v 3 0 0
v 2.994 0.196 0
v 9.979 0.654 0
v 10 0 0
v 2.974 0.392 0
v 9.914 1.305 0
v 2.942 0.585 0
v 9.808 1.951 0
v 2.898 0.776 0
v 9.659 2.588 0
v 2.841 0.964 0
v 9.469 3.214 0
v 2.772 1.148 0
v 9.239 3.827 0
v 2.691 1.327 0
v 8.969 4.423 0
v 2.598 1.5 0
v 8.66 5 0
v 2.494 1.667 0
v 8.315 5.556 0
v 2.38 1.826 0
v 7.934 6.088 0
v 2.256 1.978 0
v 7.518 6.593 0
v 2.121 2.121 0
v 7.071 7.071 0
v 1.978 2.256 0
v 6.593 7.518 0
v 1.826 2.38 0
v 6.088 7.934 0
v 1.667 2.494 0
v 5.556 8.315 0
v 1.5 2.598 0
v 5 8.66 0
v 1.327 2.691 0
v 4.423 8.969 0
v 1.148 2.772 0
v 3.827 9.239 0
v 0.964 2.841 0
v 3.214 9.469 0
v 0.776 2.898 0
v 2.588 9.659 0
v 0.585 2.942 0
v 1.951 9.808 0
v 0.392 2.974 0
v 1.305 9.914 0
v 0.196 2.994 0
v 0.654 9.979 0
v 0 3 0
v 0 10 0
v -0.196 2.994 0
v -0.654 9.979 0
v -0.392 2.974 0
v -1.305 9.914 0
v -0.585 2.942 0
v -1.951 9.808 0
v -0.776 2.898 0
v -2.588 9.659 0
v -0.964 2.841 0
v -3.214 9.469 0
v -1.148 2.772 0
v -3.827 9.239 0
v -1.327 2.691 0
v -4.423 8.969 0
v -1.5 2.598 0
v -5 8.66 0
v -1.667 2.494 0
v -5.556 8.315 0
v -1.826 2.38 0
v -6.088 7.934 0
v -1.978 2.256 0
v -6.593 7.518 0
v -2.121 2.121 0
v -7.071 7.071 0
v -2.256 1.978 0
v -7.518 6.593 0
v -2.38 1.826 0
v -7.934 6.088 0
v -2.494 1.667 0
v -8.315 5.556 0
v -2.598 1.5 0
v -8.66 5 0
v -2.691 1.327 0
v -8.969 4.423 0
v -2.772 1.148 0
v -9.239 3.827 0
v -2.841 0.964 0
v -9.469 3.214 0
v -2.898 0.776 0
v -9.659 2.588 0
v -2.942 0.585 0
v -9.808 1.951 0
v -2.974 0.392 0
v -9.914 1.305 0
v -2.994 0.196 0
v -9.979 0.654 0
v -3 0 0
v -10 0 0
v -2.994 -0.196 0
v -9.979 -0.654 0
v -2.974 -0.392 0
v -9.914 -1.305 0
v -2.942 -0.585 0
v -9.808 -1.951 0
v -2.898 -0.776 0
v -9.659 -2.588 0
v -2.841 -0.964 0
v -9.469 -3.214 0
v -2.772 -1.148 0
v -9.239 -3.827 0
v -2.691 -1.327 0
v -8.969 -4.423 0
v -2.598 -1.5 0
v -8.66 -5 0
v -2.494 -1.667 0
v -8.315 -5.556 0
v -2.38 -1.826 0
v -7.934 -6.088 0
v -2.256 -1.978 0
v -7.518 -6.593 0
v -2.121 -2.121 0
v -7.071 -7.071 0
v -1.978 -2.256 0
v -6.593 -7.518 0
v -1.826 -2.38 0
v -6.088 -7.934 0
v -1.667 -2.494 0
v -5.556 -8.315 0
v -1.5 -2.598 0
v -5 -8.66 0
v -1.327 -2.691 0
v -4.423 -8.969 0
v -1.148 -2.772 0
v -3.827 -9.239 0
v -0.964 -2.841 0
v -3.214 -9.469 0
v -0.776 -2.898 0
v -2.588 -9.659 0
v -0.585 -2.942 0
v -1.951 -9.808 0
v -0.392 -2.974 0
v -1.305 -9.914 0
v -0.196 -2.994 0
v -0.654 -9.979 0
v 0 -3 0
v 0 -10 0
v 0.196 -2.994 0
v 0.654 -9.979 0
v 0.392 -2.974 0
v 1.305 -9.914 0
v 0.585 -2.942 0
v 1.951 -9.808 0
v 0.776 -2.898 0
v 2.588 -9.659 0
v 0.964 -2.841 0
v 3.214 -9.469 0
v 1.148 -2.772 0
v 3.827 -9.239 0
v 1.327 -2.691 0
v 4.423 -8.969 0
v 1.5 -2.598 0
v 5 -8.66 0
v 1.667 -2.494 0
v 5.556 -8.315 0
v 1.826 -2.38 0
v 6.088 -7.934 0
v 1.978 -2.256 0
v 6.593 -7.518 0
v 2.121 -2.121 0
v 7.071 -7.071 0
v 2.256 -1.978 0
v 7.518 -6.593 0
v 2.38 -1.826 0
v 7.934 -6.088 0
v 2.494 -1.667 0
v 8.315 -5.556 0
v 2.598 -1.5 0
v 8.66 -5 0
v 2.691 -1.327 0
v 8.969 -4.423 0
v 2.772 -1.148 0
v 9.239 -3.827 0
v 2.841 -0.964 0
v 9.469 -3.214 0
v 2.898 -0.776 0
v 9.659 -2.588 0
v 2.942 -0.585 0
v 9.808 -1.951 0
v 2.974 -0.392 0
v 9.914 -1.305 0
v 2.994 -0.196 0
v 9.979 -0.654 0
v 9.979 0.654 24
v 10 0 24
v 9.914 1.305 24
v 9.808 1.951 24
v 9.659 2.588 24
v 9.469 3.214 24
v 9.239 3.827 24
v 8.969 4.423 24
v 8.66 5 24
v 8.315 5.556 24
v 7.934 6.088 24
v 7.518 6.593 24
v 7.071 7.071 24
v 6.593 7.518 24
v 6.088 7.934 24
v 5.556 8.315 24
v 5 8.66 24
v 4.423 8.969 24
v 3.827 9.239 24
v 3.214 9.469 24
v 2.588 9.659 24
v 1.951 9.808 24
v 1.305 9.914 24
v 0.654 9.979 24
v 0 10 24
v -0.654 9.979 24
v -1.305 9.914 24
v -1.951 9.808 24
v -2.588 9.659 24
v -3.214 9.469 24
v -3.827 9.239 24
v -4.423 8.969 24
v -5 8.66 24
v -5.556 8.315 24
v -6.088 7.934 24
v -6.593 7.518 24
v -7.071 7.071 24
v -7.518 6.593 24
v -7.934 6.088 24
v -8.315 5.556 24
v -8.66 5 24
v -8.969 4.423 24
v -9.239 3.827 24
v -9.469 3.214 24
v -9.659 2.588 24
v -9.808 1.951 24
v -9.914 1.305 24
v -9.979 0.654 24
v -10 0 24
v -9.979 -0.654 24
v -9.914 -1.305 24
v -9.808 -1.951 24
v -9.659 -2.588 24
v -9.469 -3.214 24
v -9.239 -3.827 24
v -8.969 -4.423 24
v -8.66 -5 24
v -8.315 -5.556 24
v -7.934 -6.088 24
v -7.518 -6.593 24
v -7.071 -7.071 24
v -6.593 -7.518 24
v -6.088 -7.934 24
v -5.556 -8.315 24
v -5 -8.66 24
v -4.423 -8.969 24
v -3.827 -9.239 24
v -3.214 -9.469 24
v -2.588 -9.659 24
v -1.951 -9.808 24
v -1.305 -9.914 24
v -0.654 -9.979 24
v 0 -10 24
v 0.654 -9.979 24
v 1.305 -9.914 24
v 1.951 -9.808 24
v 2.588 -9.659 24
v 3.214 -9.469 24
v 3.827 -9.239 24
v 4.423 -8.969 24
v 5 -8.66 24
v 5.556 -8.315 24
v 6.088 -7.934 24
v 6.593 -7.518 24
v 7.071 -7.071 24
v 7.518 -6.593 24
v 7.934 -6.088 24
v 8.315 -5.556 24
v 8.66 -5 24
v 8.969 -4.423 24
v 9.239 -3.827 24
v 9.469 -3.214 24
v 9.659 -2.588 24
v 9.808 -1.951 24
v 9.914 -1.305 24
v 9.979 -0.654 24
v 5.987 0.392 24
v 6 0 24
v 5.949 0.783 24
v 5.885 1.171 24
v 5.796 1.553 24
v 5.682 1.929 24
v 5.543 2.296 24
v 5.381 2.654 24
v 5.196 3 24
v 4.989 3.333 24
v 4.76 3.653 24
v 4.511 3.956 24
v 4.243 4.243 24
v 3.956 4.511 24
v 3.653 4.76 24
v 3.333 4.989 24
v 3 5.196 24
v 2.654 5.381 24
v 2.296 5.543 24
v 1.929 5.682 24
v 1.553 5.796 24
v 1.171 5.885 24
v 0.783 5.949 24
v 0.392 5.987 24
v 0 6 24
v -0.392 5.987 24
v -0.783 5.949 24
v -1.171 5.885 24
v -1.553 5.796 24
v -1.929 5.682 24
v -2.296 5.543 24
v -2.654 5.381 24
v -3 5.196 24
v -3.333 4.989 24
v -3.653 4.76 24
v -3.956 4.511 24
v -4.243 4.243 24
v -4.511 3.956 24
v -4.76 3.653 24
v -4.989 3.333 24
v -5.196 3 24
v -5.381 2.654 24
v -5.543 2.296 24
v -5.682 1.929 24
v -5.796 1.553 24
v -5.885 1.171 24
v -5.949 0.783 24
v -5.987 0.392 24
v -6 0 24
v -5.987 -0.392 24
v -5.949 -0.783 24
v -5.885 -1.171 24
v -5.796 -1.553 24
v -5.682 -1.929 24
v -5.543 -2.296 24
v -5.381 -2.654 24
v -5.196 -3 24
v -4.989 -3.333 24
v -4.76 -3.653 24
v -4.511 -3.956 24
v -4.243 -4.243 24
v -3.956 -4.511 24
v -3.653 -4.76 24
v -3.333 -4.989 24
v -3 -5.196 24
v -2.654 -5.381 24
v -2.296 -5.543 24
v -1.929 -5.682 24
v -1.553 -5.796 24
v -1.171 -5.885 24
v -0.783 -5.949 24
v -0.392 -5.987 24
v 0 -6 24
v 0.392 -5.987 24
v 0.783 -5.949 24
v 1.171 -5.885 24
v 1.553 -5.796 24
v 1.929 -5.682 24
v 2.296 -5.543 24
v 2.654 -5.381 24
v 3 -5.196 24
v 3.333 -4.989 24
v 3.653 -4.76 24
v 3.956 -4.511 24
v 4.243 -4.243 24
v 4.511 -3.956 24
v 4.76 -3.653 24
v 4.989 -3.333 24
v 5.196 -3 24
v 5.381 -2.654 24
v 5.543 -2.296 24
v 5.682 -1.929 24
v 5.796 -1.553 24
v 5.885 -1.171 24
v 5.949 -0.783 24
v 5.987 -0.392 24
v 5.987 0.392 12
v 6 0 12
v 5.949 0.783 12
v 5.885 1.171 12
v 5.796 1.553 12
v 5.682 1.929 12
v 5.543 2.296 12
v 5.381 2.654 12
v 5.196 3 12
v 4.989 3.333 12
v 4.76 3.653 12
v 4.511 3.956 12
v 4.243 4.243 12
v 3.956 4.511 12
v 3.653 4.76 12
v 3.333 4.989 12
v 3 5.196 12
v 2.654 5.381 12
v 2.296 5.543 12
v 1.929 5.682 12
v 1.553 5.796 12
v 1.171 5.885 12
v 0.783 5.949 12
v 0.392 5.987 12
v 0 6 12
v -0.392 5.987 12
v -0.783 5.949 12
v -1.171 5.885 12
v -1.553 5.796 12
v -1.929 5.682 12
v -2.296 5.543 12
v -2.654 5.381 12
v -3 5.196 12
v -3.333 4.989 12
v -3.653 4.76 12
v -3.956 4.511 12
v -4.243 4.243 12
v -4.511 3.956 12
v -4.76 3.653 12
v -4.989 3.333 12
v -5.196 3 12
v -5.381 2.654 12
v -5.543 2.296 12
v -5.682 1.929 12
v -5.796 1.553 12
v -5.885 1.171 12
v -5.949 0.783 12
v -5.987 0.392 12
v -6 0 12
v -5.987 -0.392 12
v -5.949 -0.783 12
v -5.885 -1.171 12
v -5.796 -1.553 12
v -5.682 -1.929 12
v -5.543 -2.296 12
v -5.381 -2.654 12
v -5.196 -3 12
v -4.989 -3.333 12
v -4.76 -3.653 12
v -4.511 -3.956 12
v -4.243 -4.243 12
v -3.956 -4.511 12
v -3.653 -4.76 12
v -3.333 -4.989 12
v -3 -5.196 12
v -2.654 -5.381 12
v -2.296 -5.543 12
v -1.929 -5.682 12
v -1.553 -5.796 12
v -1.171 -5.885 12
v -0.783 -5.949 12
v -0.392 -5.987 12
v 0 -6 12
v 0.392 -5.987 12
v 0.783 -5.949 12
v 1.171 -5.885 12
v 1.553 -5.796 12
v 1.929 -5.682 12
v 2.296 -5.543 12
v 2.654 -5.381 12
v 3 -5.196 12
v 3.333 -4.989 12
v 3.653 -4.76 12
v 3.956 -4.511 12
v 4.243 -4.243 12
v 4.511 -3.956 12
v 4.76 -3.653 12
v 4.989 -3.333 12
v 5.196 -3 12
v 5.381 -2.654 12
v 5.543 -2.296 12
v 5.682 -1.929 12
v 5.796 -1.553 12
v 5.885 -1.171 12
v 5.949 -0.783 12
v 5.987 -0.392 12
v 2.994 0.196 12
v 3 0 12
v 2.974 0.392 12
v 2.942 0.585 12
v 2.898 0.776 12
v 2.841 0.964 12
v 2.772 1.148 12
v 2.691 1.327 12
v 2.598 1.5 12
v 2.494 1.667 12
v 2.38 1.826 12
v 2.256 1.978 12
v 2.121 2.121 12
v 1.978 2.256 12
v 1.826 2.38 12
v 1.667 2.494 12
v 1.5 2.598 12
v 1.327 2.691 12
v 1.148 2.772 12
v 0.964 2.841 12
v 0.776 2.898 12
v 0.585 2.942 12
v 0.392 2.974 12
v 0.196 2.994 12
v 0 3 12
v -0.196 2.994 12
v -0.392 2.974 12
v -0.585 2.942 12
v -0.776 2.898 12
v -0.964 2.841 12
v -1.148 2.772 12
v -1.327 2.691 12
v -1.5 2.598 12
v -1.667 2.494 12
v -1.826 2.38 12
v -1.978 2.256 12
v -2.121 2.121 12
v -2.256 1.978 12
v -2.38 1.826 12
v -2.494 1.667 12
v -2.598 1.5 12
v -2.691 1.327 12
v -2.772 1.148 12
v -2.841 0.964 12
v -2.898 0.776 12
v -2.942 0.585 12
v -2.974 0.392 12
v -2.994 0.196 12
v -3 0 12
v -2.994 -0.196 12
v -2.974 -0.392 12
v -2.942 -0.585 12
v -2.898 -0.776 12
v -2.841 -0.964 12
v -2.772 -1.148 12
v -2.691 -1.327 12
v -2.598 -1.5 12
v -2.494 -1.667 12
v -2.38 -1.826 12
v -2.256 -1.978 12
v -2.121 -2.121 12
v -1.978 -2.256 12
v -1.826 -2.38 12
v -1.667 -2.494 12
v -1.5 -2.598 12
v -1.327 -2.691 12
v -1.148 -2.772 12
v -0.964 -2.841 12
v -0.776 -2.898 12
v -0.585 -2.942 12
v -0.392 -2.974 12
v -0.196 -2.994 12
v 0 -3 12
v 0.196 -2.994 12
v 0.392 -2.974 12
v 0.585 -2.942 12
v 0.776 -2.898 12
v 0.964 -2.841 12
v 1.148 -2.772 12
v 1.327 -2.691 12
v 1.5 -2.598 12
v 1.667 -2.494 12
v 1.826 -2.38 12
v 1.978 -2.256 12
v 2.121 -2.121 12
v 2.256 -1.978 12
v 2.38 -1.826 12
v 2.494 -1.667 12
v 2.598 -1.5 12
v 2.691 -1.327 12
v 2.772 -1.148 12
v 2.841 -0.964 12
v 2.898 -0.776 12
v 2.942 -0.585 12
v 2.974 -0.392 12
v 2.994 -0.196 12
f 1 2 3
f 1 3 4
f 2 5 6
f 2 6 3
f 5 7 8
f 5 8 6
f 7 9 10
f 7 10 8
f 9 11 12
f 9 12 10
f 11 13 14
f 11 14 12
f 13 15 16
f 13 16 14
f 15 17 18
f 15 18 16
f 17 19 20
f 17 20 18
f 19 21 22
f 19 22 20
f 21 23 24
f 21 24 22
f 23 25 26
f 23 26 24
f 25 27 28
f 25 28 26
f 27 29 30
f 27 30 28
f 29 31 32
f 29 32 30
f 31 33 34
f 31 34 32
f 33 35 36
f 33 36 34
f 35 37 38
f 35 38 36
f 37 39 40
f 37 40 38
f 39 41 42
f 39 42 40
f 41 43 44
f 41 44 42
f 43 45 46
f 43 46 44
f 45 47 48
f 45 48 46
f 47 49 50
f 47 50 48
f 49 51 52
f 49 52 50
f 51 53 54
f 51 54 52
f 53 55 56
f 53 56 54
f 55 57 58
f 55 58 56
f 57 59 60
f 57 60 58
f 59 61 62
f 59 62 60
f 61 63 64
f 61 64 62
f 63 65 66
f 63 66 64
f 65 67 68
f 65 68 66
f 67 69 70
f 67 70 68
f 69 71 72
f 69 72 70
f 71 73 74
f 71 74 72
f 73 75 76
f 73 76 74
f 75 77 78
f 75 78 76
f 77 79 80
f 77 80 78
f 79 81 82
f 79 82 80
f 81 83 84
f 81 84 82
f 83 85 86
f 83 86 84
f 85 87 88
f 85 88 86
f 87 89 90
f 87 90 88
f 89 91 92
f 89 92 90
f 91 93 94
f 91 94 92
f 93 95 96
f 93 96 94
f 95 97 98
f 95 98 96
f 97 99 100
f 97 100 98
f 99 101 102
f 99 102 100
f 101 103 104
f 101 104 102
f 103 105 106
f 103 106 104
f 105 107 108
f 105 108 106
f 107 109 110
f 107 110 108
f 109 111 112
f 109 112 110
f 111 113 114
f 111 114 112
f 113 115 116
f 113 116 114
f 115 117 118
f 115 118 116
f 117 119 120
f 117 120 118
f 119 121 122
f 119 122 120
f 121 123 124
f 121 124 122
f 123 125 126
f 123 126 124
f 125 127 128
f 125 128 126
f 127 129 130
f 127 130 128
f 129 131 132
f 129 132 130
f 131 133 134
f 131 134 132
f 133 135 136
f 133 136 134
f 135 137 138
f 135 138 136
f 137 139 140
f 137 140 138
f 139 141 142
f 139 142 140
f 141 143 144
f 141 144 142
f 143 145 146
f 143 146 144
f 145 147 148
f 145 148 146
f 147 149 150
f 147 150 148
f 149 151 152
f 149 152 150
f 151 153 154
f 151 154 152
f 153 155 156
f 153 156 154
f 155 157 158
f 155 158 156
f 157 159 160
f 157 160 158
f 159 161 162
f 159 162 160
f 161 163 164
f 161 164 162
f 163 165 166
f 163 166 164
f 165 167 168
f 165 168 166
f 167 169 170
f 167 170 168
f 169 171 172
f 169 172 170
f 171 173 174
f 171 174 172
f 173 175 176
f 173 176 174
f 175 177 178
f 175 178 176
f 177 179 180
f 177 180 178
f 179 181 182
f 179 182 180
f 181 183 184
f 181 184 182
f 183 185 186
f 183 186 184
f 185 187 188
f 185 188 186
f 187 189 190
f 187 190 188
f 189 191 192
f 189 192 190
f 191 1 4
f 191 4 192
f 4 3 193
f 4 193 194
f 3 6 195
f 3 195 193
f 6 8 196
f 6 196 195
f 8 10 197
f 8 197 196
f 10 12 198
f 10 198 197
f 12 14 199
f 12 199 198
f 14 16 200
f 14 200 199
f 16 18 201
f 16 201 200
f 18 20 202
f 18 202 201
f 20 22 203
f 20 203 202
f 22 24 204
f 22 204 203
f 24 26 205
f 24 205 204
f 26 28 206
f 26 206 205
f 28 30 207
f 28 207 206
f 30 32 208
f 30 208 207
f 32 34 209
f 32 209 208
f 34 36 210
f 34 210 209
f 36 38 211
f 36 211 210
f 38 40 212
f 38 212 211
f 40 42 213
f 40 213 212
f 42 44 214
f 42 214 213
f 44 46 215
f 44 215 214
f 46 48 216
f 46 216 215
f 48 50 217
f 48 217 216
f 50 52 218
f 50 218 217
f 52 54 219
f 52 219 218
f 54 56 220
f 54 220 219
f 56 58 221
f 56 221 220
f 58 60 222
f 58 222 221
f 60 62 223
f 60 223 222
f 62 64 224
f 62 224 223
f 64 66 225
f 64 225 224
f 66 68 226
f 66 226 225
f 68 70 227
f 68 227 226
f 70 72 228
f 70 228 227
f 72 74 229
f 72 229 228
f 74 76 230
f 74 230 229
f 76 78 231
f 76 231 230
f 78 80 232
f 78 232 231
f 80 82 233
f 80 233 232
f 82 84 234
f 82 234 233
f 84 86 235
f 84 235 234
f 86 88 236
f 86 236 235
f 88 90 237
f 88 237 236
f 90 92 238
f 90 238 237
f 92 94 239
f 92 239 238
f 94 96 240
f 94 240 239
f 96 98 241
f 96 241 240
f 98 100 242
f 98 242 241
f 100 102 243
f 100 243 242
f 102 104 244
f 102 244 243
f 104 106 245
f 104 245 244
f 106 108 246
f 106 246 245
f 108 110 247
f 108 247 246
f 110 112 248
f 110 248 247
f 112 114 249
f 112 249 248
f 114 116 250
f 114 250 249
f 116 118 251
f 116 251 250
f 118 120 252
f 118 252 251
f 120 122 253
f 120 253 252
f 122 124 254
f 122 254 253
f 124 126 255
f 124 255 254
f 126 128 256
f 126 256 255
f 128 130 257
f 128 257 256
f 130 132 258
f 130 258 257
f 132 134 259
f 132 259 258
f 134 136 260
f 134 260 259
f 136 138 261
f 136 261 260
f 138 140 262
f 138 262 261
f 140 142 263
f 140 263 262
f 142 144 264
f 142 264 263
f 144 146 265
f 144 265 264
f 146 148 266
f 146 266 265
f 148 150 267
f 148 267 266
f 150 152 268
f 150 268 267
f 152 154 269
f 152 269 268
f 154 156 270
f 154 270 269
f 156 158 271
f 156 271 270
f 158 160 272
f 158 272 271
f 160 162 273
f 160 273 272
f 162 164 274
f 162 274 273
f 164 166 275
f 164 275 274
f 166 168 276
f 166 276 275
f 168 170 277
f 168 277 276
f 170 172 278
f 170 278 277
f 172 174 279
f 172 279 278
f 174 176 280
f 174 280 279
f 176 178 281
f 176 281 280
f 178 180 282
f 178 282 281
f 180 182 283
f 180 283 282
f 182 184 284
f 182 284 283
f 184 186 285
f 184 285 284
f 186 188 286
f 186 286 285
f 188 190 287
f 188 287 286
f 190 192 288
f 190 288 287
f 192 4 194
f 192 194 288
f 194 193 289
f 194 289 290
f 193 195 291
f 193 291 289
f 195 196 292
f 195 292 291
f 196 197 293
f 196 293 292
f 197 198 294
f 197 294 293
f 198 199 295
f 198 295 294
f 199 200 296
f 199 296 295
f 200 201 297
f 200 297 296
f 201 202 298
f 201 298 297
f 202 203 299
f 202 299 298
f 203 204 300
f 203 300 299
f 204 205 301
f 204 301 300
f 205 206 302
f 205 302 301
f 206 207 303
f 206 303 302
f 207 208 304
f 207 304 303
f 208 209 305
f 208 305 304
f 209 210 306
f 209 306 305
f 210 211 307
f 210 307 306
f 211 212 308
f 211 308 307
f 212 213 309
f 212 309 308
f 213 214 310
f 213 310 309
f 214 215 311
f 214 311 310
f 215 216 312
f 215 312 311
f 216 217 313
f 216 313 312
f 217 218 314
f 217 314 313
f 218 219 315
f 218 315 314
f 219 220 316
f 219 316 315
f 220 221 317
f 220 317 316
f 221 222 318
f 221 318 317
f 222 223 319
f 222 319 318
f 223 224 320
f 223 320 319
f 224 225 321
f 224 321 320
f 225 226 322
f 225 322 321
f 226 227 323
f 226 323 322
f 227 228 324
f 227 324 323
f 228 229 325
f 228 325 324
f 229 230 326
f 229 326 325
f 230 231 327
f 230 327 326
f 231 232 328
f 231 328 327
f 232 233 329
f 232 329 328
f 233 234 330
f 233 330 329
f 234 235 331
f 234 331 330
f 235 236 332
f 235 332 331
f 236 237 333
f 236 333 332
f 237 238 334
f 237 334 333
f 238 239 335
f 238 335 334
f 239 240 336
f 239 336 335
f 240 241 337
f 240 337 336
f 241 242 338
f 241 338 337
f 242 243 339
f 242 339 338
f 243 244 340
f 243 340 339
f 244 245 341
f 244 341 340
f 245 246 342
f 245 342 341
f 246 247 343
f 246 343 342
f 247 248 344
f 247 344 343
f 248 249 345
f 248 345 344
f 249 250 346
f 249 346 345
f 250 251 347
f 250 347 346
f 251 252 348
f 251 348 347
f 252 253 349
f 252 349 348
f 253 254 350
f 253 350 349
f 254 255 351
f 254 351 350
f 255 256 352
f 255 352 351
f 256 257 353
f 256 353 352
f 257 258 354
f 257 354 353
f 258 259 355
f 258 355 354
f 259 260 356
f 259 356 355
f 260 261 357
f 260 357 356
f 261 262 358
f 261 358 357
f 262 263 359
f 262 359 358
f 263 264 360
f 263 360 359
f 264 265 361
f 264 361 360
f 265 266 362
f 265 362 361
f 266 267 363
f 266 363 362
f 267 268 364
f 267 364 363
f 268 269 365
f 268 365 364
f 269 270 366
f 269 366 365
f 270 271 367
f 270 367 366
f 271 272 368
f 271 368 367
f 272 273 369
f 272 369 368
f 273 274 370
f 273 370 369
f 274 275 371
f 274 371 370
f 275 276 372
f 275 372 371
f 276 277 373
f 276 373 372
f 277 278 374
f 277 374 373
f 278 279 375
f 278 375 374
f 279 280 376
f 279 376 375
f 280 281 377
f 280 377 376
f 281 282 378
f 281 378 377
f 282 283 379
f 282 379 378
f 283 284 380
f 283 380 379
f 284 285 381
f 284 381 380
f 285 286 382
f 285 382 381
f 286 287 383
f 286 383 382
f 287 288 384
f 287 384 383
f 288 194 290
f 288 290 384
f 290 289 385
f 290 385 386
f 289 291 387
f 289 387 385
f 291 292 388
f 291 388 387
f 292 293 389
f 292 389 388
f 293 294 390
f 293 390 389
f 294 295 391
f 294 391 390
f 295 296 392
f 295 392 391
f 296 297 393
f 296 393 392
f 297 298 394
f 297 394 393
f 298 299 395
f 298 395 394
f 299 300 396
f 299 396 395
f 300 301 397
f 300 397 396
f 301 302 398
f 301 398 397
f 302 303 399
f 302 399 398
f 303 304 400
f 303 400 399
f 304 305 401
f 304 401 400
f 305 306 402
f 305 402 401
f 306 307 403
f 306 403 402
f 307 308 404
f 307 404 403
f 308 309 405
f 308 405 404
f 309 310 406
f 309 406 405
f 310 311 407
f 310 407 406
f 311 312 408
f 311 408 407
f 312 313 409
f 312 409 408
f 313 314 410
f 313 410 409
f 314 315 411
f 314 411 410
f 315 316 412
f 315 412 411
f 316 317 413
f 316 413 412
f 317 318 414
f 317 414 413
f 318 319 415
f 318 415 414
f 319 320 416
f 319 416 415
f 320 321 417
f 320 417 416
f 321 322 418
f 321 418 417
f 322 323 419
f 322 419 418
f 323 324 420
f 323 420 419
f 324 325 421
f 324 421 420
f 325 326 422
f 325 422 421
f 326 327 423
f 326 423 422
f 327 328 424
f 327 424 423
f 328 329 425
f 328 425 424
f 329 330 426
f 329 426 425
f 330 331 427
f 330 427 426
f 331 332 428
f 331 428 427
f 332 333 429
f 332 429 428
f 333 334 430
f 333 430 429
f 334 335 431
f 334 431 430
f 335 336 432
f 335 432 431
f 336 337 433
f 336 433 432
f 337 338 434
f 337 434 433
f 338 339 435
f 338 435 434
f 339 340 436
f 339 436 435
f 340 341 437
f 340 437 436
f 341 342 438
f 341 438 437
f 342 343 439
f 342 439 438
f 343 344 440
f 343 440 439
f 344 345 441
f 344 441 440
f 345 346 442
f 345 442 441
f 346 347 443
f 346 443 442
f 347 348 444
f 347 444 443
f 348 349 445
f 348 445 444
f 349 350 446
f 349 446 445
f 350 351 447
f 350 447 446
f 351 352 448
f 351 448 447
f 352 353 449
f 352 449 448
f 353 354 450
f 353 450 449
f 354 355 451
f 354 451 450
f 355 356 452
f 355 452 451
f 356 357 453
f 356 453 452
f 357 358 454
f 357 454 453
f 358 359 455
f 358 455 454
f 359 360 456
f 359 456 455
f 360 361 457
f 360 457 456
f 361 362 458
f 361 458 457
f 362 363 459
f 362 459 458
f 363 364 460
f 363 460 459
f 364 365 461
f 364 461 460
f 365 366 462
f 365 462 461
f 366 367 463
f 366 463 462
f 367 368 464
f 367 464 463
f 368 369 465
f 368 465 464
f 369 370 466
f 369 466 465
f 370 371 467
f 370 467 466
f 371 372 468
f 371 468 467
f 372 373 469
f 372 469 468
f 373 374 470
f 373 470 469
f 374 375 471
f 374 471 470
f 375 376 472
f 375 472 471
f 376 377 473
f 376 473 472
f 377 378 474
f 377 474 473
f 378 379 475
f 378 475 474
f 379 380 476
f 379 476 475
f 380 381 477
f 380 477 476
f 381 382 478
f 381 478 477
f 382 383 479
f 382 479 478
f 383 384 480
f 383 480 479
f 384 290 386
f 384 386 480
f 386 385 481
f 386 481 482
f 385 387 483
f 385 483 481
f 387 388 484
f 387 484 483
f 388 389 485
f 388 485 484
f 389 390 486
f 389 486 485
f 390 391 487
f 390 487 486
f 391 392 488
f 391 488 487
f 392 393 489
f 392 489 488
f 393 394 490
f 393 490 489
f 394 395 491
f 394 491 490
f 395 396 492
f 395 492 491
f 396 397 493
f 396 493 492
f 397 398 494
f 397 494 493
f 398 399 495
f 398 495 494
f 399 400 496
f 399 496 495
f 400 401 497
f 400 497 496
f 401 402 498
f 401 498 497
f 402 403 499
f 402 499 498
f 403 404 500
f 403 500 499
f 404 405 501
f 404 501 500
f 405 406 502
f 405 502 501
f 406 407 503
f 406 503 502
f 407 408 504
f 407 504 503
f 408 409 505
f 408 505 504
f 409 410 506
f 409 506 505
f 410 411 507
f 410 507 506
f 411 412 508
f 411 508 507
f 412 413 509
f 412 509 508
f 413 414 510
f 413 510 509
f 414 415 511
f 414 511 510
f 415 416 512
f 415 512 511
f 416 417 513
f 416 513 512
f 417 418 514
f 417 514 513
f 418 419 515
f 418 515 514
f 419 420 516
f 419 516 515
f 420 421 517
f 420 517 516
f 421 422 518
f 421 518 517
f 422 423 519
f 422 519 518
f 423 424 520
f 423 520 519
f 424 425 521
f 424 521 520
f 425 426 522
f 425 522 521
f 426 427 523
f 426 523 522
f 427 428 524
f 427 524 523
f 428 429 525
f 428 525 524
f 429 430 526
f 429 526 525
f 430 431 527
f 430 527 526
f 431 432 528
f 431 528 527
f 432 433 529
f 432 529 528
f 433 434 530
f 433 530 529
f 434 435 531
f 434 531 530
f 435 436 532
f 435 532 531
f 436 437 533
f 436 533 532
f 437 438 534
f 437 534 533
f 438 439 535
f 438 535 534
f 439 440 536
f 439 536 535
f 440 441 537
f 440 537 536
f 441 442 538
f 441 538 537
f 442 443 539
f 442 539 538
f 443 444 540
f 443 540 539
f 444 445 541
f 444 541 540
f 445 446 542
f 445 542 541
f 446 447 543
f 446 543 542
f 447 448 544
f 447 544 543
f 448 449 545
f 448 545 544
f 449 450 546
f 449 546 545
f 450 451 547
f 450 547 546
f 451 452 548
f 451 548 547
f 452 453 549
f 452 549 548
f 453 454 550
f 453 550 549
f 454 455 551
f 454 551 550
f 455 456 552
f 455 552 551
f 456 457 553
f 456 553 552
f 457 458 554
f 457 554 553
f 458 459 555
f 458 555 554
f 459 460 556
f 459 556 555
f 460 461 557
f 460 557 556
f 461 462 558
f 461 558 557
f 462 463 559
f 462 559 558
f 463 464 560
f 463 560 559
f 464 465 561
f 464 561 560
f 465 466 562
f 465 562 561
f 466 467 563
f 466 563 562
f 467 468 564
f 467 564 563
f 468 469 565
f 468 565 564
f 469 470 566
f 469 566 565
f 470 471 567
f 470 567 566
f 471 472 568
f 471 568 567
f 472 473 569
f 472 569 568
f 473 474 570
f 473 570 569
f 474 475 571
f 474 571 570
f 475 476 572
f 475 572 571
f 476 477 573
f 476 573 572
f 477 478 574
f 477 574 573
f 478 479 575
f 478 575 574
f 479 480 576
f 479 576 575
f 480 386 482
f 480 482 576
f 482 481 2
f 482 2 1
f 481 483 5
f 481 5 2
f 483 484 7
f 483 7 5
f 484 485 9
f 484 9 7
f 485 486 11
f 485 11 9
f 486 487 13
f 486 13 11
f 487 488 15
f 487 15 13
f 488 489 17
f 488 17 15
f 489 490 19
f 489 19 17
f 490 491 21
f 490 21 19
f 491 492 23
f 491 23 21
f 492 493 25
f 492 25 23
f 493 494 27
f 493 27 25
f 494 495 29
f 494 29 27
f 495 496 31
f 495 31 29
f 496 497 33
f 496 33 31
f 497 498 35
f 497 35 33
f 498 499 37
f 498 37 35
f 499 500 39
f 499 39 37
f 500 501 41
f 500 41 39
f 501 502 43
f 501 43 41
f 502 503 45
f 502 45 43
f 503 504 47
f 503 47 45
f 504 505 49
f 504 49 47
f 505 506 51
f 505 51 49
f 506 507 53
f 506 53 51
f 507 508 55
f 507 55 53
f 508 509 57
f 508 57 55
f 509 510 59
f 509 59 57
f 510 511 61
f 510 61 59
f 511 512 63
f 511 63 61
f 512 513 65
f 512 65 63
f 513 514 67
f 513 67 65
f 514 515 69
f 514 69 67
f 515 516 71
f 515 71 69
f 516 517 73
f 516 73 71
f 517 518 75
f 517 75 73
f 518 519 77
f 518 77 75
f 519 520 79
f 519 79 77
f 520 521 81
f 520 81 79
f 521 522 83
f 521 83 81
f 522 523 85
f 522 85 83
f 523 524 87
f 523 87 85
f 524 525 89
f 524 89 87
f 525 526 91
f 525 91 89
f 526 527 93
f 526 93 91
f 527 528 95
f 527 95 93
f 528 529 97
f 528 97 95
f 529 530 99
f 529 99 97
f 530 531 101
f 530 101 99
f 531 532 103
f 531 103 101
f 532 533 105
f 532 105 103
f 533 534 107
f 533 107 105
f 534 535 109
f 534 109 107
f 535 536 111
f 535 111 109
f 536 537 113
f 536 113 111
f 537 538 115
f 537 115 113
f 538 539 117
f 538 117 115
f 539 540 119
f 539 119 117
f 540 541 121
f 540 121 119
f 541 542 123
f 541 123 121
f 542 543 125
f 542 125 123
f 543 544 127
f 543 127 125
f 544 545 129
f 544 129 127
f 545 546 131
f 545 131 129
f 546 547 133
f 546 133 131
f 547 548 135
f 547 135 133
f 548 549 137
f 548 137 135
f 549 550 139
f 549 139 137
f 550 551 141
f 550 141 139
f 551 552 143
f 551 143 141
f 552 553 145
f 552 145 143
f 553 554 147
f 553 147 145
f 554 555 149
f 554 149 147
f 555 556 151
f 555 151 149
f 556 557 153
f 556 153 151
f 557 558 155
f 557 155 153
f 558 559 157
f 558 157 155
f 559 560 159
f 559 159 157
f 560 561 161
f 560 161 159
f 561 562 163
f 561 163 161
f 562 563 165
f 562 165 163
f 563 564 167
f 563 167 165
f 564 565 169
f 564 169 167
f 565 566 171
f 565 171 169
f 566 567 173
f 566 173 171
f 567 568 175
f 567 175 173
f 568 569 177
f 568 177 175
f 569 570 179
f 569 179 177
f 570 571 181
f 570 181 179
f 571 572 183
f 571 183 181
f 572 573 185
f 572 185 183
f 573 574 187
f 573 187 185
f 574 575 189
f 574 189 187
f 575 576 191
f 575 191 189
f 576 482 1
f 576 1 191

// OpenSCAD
// Original MechIntel educational model. CC0-1.0. Units: mm.
// Not a standardized or load-rated component.
$fn=96;
// Section points: [radius, height], mm. Edit to change the profile.
section=[[3, 0], [10, 0], [10, 24], [6, 24], [6, 12], [3, 12]];
rotate_extrude($fn=96) polygon(points=section);
